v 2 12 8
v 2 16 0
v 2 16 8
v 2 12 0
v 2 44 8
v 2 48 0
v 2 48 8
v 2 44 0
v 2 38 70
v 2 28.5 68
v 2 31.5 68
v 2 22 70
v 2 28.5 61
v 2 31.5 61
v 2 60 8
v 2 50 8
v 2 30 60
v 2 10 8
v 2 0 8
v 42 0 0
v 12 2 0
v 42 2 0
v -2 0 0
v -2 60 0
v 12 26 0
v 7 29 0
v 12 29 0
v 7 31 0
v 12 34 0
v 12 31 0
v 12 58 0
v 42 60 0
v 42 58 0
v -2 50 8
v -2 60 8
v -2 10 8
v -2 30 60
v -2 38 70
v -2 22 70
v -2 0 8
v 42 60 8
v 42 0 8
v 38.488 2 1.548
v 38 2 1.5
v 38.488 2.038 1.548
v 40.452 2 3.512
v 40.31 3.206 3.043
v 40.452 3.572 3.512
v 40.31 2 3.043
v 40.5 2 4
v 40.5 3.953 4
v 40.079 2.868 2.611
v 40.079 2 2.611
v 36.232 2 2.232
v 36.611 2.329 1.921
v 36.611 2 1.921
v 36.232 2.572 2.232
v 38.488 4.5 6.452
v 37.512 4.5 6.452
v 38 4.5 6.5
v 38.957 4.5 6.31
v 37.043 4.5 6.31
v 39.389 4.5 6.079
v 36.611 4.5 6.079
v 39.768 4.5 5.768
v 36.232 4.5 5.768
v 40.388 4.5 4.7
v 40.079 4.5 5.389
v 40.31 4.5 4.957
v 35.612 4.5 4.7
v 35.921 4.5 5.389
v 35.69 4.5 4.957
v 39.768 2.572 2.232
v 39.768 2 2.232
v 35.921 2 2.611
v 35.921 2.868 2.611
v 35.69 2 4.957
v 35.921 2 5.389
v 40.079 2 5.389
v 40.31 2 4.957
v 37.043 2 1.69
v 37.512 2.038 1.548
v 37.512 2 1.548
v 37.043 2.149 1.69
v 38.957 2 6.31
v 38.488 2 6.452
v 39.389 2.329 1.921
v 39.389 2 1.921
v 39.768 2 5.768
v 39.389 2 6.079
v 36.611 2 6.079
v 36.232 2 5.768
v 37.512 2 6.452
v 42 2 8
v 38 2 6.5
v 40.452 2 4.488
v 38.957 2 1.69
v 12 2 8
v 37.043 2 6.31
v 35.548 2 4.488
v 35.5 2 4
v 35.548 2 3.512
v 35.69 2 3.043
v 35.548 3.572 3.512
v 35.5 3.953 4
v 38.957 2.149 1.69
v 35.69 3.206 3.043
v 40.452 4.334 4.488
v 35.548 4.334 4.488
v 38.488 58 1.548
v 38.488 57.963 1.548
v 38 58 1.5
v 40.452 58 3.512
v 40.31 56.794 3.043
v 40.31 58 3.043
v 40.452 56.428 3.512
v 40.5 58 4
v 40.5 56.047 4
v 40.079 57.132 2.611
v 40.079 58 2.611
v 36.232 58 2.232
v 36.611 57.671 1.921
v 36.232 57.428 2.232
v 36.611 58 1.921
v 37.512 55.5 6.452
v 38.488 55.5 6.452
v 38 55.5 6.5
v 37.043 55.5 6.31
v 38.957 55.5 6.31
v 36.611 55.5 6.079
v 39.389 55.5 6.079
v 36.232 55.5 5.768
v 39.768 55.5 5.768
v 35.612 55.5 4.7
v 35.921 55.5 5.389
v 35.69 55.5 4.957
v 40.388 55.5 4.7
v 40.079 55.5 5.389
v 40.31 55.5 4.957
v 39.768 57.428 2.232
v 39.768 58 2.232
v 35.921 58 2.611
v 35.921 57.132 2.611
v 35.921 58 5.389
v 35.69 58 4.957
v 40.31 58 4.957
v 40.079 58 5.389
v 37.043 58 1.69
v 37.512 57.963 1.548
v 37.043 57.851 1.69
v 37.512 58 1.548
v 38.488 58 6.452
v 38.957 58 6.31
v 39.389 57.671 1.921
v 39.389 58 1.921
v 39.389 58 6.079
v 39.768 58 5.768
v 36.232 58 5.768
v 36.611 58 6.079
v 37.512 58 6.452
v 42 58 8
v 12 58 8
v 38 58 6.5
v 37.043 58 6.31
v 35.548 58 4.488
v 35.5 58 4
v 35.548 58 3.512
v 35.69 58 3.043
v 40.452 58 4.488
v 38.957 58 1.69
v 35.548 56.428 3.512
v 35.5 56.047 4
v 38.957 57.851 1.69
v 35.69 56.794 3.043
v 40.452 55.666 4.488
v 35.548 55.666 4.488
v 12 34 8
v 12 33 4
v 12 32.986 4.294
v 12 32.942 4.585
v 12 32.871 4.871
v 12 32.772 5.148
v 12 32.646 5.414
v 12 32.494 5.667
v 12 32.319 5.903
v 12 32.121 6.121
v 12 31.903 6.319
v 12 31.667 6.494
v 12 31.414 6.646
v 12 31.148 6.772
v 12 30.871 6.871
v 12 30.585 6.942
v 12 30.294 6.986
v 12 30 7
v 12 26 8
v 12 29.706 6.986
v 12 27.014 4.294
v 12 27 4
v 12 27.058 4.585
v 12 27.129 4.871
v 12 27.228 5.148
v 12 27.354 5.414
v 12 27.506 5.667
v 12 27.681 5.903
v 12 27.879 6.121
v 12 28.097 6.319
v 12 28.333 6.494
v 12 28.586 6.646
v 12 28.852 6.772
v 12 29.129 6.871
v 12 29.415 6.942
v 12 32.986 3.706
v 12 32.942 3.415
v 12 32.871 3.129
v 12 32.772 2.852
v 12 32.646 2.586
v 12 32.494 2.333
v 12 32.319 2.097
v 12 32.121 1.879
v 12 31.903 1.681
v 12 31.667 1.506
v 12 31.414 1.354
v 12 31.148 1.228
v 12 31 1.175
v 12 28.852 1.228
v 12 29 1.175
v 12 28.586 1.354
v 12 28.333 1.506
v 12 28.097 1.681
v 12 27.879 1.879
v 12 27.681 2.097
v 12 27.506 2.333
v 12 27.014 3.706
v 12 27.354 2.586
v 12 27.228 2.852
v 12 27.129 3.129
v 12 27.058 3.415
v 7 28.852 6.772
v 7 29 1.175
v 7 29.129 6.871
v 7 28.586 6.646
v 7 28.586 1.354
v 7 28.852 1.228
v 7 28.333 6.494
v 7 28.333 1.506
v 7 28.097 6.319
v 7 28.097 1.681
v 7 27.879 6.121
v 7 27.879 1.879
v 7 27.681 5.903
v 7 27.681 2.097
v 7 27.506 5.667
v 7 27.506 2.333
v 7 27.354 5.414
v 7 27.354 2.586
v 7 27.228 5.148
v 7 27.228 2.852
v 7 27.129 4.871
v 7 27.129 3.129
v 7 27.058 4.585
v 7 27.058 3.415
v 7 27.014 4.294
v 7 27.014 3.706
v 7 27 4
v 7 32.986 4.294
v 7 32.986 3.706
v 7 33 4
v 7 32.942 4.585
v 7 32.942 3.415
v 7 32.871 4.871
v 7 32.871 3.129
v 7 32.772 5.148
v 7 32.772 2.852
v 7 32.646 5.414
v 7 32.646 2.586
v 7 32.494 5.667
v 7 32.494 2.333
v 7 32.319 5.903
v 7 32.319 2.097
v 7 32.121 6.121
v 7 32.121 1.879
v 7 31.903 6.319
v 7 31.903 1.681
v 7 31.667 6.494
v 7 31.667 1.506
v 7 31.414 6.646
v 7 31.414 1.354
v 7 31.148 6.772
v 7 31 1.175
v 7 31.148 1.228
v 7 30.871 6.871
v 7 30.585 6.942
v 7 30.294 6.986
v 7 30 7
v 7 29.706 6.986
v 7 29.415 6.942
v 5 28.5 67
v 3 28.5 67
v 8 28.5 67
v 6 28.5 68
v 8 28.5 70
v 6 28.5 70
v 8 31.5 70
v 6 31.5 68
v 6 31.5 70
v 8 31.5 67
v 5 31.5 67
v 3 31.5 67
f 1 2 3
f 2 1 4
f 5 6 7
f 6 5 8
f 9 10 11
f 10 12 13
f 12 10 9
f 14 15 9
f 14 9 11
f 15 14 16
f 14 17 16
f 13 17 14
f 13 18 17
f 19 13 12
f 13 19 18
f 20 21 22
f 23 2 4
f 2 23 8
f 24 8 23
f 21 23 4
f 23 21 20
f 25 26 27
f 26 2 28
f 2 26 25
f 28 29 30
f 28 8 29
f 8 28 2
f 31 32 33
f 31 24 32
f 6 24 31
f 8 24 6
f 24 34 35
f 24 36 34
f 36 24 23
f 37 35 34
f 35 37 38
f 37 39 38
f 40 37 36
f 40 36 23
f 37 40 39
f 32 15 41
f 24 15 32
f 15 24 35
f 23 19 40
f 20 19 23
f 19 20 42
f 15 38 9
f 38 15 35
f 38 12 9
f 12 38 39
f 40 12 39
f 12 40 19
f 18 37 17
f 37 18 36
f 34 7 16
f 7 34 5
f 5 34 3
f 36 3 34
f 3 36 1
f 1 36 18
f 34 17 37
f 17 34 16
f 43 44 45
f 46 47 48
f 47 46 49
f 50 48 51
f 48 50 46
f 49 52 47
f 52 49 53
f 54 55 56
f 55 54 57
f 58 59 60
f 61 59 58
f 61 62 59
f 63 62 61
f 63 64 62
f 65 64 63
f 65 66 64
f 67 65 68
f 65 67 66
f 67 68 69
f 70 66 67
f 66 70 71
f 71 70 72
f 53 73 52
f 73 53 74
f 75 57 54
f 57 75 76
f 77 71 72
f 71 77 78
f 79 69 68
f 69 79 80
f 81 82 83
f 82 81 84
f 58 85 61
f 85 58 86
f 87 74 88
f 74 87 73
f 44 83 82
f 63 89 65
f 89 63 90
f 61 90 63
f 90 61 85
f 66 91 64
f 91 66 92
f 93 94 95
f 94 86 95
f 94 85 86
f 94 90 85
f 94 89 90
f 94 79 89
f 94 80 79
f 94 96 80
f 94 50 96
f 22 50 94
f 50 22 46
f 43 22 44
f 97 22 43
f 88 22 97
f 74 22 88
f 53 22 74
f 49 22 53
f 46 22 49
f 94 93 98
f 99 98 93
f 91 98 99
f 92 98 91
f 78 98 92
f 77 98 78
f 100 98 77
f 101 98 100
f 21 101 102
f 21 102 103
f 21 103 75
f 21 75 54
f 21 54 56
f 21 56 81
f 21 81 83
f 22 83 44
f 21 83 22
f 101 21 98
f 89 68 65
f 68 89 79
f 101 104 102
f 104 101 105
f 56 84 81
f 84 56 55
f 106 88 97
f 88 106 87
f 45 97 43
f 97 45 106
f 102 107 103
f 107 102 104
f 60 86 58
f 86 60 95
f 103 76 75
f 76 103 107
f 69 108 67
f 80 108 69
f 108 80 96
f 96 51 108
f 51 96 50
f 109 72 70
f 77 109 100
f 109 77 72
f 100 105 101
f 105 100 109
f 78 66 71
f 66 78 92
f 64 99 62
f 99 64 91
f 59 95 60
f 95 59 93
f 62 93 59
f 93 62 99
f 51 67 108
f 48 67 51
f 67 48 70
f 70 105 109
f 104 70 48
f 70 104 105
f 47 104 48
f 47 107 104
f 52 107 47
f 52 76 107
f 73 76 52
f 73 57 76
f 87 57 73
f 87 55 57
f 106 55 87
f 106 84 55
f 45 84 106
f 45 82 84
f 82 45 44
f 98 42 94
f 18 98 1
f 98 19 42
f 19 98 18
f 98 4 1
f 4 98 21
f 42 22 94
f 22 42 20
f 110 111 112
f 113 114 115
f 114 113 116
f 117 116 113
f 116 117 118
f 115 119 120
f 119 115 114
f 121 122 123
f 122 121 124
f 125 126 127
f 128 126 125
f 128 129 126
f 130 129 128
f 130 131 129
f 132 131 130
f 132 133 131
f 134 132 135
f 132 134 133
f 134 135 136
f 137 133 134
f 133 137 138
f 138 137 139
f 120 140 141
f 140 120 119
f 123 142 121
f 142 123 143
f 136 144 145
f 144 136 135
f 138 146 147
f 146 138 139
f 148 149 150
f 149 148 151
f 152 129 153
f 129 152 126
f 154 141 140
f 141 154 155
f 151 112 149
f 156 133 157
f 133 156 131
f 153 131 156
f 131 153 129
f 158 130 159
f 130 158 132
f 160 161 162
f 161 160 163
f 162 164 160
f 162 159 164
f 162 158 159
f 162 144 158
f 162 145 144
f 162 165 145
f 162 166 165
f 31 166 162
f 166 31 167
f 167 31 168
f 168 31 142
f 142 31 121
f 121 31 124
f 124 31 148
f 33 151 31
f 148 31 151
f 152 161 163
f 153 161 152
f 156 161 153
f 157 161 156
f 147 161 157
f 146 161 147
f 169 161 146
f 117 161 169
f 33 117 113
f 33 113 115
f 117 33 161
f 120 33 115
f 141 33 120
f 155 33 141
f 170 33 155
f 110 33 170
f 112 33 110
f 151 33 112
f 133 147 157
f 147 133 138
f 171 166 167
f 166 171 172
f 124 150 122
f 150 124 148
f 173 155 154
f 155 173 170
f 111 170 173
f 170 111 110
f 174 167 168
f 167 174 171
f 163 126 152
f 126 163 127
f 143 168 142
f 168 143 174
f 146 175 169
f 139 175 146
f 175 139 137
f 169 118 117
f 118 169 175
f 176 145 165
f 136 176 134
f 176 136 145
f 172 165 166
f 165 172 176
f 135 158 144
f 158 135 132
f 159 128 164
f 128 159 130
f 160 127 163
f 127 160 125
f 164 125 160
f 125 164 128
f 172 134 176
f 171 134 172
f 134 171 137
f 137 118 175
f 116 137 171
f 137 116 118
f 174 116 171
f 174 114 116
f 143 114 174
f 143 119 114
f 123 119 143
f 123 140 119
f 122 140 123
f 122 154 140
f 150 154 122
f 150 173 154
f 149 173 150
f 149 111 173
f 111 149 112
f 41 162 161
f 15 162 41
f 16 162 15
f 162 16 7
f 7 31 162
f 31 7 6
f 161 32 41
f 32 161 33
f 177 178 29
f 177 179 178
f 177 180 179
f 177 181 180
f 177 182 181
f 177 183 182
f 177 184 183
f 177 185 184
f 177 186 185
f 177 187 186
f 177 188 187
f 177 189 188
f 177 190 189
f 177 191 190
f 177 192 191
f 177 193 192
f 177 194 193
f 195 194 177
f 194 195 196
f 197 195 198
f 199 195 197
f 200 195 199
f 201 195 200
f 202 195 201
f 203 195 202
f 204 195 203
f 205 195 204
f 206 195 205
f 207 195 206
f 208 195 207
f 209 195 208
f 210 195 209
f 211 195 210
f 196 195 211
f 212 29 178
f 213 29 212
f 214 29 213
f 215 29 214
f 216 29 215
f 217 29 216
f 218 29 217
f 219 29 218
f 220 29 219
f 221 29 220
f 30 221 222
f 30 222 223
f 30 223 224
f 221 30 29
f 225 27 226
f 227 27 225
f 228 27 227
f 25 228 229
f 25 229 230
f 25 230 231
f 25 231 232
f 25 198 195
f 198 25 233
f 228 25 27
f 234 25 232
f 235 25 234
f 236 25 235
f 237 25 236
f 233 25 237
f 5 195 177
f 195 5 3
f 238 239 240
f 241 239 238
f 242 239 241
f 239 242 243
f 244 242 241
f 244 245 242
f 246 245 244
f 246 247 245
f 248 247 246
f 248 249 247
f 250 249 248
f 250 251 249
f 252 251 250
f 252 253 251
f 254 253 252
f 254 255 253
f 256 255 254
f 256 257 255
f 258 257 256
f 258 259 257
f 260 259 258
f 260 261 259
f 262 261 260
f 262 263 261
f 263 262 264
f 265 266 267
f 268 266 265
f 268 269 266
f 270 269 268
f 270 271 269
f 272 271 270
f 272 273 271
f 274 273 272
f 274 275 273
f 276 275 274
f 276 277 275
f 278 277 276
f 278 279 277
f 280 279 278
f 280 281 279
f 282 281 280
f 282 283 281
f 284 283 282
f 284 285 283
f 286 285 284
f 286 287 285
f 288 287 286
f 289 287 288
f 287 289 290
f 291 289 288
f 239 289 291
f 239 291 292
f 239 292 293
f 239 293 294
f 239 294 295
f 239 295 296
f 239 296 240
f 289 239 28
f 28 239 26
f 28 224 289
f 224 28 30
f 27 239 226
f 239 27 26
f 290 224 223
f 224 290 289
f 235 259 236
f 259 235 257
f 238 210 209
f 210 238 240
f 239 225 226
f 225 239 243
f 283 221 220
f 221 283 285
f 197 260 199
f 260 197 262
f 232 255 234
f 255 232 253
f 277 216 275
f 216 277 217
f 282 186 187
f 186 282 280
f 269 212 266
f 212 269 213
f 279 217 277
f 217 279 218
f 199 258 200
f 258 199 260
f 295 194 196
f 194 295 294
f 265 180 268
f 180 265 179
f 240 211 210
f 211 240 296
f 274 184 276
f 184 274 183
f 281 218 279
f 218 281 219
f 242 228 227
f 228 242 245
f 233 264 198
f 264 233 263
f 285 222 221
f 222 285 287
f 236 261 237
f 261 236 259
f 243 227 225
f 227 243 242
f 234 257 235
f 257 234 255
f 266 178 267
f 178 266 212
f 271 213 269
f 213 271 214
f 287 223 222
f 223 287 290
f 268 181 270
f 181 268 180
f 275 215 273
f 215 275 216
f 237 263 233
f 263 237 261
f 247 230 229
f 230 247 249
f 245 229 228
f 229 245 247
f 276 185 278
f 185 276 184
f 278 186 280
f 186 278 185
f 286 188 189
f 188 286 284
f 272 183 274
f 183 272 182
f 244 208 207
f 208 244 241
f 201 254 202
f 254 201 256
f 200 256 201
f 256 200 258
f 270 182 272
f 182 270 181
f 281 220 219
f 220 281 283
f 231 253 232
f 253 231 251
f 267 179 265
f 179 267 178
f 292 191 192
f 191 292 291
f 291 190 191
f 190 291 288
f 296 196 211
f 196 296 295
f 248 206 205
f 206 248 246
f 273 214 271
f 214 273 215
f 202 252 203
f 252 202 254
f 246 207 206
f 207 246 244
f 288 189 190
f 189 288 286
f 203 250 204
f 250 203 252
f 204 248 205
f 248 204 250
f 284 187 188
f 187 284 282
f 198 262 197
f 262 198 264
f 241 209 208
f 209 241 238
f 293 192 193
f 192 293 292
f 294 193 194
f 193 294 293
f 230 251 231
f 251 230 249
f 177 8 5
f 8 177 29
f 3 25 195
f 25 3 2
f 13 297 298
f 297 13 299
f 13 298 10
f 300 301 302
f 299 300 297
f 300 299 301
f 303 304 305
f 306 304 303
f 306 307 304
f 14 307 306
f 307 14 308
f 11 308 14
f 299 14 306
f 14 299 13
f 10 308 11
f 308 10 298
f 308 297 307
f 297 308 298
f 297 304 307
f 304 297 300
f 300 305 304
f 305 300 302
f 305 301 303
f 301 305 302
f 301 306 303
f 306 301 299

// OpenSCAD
// file: ffp2_drying_rack.scad
/*

  ffp2_drying_rack.scad

  (c) olikraus@gmail.com

  This work is licensed under the Creative Commons Attribution-NonCommercial-ShareAlike 4.0 International License. 
  To view a copy of this license, visit http://creativecommons.org/licenses/by-nc-sa/4.0/.
    
*/


$fn=32;

clip_len=40;
clip_height=8;
clip_thickness=2;
clip_diameter = clip_height-3;
clip_cylinder_len = 2.5;

/* min 8 for clip_cyllinder_len=2.5 
    also depends on clip_diameter and in turn on clip_height
    clip_triangle_len must be also larger than press_fit_len
*/
clip_triangle_len = 10;

/* clip hole diameter extention, so that the clip fits better */
clip_diameter_gap = 0.1; 


hook_len=6;
hook_nose_height=3;
hook_nose_width=2;
hook_thickness=3;

wall_thickness=4;
wall_height=70;
wall_width=60;

press_fit_len=5;
press_fit_diameter=clip_height-2;


module triangle_block() {
    linear_extrude(height=clip_height)
    polygon(points=[[0,0],[clip_triangle_len,0],[0,clip_triangle_len]]);
}

module clip_m() {
    union() {
        translate([0,clip_thickness,0])
        triangle_block();
        cube([clip_len, clip_thickness,clip_height]);
        translate([clip_len-(clip_height)/2,clip_thickness,clip_height/2])
        rotate([-90,0,0])
        difference() {
            cylinder(d=clip_diameter, h=clip_cylinder_len);
            translate([0,(clip_diameter)/2,0])
            rotate([-38,0,0])
            translate([-clip_height/2, -clip_height, 0])
            cube([clip_height,clip_height,clip_height]);
        }
    }
}


module clip_f() {
    translate([0,clip_thickness,0])
    difference() {
        rotate([0,0,90])
        triangle_block();
        translate([-clip_height/2,-0.01,clip_height/2])
        rotate([-90,0,0])
        cylinder(d=clip_diameter+clip_diameter_gap, 
                h=clip_cylinder_len+0.5);
    }
}

module hook() {
    rotate([-90,0,0])
    linear_extrude(height=hook_thickness, center=true)
    polygon(points=[
        [0,-1],
        [1,0],
        [hook_len-hook_nose_width-1,0],
        [hook_len-hook_nose_width,-1],
        [hook_len-hook_nose_width,-hook_nose_height],
        [hook_len,-hook_nose_height],
        [hook_len,0],
        [0,hook_len]]);
}

module press_fit_f() {
    difference() {
        translate([0,-clip_height/2,0])
        cube([clip_triangle_len, clip_height, clip_height]);
        
        translate([clip_triangle_len-press_fit_len,
            -press_fit_diameter/3/2,
            -0.01])
        cube([press_fit_len+0.01,press_fit_diameter/3,clip_height/2]);
        

        translate([clip_triangle_len-press_fit_len,0,clip_height/2])
        rotate([0,90,0])
        cylinder(d=press_fit_diameter,h=press_fit_len+0.01, $fn=64);
    }

    translate([0,clip_height/2,0])
    triangle_block();

    mirror([0,1,0])
    translate([0,clip_height/2,0])
    triangle_block();
}

module press_fit_m() {

    translate([-clip_len+clip_triangle_len,0,0])
    union() {
        translate([0.5-press_fit_len,-(press_fit_diameter/3-0.2)/2,0])
        cube([press_fit_len-0.5,press_fit_diameter/3-0.2,clip_height/2]);
        
        translate([0,0,clip_height/2])
        rotate([0,-90,0])
        cylinder(
            d1=press_fit_diameter, 
            d2=press_fit_diameter*0.95, 
            h=press_fit_len-0.5, $fn=6);
        
        translate([0,-clip_height/2,0])
        cube([clip_len-clip_triangle_len, clip_height, clip_height]);
        
        translate([clip_len-clip_triangle_len,clip_height/2,0])
        mirror([1,0,0])
        triangle_block();

        translate([clip_len-clip_triangle_len,-clip_height/2,0])
        rotate([0,0,180])
        triangle_block();
        
    }
}

module pure_wall() {
    difference() {
        union() {
            translate([-wall_thickness/2,0,0])
            cube([wall_thickness, wall_width, clip_height]);

            translate([wall_thickness/2,0,clip_height])
            rotate([0,-90,0])
            linear_extrude(height=wall_thickness)
            polygon(points=[
                [0,0],
                [0,wall_width],
                [wall_height-clip_height,wall_width/2+clip_height],
                [wall_height-clip_height,wall_width/2-clip_height]
            ]);


            
        }

        translate([wall_thickness,0,clip_height])
        rotate([0,-90,0])
        linear_extrude(height=wall_thickness*2)
        polygon(points=[
        [0,clip_triangle_len],
        [0,wall_width-clip_triangle_len],
        [wall_height-clip_height-clip_triangle_len,wall_width/2]
        ]);
    }
    
}


module wall(is_left=1, is_right=1) {
    union() {
        //translate([-wall_thickness/2,0,0])
        //cube([wall_thickness, wall_width, wall_height]);
        pure_wall();
        if ( is_right) {
            translate([wall_thickness/2,0,0])
            clip_m();

            translate([wall_thickness/2,wall_width,0])
            mirror([0,1,0])
            clip_m();

            translate([wall_thickness/2,wall_width/2,0])
            press_fit_f();
            
            translate([wall_thickness/2,
                    wall_width/2,
                    wall_height-hook_nose_height])            
            hook();
                      
        }

        if ( is_left) {

            translate([-wall_thickness/2,0,0])
            clip_f();

            translate([-wall_thickness/2,wall_width,0])
            mirror([0,1,0])
            clip_f();
            
            translate([-wall_thickness/2,wall_width/2,0])
            press_fit_m();
            
            mirror([1,0,0])
            translate([wall_thickness/2,
                    wall_width/2,
                    wall_height-hook_nose_height])
            hook();
            
        }
    }
}


//wall(1,1);
// main file
/*

  left_wall.scad

  (c) olikraus@gmail.com

  This work is licensed under the Creative Commons Attribution-NonCommercial-ShareAlike 4.0 International License. 
  To view a copy of this license, visit http://creativecommons.org/licenses/by-nc-sa/4.0/.
    
*/
include <ffp2_drying_rack.scad>

wall(0,1);
